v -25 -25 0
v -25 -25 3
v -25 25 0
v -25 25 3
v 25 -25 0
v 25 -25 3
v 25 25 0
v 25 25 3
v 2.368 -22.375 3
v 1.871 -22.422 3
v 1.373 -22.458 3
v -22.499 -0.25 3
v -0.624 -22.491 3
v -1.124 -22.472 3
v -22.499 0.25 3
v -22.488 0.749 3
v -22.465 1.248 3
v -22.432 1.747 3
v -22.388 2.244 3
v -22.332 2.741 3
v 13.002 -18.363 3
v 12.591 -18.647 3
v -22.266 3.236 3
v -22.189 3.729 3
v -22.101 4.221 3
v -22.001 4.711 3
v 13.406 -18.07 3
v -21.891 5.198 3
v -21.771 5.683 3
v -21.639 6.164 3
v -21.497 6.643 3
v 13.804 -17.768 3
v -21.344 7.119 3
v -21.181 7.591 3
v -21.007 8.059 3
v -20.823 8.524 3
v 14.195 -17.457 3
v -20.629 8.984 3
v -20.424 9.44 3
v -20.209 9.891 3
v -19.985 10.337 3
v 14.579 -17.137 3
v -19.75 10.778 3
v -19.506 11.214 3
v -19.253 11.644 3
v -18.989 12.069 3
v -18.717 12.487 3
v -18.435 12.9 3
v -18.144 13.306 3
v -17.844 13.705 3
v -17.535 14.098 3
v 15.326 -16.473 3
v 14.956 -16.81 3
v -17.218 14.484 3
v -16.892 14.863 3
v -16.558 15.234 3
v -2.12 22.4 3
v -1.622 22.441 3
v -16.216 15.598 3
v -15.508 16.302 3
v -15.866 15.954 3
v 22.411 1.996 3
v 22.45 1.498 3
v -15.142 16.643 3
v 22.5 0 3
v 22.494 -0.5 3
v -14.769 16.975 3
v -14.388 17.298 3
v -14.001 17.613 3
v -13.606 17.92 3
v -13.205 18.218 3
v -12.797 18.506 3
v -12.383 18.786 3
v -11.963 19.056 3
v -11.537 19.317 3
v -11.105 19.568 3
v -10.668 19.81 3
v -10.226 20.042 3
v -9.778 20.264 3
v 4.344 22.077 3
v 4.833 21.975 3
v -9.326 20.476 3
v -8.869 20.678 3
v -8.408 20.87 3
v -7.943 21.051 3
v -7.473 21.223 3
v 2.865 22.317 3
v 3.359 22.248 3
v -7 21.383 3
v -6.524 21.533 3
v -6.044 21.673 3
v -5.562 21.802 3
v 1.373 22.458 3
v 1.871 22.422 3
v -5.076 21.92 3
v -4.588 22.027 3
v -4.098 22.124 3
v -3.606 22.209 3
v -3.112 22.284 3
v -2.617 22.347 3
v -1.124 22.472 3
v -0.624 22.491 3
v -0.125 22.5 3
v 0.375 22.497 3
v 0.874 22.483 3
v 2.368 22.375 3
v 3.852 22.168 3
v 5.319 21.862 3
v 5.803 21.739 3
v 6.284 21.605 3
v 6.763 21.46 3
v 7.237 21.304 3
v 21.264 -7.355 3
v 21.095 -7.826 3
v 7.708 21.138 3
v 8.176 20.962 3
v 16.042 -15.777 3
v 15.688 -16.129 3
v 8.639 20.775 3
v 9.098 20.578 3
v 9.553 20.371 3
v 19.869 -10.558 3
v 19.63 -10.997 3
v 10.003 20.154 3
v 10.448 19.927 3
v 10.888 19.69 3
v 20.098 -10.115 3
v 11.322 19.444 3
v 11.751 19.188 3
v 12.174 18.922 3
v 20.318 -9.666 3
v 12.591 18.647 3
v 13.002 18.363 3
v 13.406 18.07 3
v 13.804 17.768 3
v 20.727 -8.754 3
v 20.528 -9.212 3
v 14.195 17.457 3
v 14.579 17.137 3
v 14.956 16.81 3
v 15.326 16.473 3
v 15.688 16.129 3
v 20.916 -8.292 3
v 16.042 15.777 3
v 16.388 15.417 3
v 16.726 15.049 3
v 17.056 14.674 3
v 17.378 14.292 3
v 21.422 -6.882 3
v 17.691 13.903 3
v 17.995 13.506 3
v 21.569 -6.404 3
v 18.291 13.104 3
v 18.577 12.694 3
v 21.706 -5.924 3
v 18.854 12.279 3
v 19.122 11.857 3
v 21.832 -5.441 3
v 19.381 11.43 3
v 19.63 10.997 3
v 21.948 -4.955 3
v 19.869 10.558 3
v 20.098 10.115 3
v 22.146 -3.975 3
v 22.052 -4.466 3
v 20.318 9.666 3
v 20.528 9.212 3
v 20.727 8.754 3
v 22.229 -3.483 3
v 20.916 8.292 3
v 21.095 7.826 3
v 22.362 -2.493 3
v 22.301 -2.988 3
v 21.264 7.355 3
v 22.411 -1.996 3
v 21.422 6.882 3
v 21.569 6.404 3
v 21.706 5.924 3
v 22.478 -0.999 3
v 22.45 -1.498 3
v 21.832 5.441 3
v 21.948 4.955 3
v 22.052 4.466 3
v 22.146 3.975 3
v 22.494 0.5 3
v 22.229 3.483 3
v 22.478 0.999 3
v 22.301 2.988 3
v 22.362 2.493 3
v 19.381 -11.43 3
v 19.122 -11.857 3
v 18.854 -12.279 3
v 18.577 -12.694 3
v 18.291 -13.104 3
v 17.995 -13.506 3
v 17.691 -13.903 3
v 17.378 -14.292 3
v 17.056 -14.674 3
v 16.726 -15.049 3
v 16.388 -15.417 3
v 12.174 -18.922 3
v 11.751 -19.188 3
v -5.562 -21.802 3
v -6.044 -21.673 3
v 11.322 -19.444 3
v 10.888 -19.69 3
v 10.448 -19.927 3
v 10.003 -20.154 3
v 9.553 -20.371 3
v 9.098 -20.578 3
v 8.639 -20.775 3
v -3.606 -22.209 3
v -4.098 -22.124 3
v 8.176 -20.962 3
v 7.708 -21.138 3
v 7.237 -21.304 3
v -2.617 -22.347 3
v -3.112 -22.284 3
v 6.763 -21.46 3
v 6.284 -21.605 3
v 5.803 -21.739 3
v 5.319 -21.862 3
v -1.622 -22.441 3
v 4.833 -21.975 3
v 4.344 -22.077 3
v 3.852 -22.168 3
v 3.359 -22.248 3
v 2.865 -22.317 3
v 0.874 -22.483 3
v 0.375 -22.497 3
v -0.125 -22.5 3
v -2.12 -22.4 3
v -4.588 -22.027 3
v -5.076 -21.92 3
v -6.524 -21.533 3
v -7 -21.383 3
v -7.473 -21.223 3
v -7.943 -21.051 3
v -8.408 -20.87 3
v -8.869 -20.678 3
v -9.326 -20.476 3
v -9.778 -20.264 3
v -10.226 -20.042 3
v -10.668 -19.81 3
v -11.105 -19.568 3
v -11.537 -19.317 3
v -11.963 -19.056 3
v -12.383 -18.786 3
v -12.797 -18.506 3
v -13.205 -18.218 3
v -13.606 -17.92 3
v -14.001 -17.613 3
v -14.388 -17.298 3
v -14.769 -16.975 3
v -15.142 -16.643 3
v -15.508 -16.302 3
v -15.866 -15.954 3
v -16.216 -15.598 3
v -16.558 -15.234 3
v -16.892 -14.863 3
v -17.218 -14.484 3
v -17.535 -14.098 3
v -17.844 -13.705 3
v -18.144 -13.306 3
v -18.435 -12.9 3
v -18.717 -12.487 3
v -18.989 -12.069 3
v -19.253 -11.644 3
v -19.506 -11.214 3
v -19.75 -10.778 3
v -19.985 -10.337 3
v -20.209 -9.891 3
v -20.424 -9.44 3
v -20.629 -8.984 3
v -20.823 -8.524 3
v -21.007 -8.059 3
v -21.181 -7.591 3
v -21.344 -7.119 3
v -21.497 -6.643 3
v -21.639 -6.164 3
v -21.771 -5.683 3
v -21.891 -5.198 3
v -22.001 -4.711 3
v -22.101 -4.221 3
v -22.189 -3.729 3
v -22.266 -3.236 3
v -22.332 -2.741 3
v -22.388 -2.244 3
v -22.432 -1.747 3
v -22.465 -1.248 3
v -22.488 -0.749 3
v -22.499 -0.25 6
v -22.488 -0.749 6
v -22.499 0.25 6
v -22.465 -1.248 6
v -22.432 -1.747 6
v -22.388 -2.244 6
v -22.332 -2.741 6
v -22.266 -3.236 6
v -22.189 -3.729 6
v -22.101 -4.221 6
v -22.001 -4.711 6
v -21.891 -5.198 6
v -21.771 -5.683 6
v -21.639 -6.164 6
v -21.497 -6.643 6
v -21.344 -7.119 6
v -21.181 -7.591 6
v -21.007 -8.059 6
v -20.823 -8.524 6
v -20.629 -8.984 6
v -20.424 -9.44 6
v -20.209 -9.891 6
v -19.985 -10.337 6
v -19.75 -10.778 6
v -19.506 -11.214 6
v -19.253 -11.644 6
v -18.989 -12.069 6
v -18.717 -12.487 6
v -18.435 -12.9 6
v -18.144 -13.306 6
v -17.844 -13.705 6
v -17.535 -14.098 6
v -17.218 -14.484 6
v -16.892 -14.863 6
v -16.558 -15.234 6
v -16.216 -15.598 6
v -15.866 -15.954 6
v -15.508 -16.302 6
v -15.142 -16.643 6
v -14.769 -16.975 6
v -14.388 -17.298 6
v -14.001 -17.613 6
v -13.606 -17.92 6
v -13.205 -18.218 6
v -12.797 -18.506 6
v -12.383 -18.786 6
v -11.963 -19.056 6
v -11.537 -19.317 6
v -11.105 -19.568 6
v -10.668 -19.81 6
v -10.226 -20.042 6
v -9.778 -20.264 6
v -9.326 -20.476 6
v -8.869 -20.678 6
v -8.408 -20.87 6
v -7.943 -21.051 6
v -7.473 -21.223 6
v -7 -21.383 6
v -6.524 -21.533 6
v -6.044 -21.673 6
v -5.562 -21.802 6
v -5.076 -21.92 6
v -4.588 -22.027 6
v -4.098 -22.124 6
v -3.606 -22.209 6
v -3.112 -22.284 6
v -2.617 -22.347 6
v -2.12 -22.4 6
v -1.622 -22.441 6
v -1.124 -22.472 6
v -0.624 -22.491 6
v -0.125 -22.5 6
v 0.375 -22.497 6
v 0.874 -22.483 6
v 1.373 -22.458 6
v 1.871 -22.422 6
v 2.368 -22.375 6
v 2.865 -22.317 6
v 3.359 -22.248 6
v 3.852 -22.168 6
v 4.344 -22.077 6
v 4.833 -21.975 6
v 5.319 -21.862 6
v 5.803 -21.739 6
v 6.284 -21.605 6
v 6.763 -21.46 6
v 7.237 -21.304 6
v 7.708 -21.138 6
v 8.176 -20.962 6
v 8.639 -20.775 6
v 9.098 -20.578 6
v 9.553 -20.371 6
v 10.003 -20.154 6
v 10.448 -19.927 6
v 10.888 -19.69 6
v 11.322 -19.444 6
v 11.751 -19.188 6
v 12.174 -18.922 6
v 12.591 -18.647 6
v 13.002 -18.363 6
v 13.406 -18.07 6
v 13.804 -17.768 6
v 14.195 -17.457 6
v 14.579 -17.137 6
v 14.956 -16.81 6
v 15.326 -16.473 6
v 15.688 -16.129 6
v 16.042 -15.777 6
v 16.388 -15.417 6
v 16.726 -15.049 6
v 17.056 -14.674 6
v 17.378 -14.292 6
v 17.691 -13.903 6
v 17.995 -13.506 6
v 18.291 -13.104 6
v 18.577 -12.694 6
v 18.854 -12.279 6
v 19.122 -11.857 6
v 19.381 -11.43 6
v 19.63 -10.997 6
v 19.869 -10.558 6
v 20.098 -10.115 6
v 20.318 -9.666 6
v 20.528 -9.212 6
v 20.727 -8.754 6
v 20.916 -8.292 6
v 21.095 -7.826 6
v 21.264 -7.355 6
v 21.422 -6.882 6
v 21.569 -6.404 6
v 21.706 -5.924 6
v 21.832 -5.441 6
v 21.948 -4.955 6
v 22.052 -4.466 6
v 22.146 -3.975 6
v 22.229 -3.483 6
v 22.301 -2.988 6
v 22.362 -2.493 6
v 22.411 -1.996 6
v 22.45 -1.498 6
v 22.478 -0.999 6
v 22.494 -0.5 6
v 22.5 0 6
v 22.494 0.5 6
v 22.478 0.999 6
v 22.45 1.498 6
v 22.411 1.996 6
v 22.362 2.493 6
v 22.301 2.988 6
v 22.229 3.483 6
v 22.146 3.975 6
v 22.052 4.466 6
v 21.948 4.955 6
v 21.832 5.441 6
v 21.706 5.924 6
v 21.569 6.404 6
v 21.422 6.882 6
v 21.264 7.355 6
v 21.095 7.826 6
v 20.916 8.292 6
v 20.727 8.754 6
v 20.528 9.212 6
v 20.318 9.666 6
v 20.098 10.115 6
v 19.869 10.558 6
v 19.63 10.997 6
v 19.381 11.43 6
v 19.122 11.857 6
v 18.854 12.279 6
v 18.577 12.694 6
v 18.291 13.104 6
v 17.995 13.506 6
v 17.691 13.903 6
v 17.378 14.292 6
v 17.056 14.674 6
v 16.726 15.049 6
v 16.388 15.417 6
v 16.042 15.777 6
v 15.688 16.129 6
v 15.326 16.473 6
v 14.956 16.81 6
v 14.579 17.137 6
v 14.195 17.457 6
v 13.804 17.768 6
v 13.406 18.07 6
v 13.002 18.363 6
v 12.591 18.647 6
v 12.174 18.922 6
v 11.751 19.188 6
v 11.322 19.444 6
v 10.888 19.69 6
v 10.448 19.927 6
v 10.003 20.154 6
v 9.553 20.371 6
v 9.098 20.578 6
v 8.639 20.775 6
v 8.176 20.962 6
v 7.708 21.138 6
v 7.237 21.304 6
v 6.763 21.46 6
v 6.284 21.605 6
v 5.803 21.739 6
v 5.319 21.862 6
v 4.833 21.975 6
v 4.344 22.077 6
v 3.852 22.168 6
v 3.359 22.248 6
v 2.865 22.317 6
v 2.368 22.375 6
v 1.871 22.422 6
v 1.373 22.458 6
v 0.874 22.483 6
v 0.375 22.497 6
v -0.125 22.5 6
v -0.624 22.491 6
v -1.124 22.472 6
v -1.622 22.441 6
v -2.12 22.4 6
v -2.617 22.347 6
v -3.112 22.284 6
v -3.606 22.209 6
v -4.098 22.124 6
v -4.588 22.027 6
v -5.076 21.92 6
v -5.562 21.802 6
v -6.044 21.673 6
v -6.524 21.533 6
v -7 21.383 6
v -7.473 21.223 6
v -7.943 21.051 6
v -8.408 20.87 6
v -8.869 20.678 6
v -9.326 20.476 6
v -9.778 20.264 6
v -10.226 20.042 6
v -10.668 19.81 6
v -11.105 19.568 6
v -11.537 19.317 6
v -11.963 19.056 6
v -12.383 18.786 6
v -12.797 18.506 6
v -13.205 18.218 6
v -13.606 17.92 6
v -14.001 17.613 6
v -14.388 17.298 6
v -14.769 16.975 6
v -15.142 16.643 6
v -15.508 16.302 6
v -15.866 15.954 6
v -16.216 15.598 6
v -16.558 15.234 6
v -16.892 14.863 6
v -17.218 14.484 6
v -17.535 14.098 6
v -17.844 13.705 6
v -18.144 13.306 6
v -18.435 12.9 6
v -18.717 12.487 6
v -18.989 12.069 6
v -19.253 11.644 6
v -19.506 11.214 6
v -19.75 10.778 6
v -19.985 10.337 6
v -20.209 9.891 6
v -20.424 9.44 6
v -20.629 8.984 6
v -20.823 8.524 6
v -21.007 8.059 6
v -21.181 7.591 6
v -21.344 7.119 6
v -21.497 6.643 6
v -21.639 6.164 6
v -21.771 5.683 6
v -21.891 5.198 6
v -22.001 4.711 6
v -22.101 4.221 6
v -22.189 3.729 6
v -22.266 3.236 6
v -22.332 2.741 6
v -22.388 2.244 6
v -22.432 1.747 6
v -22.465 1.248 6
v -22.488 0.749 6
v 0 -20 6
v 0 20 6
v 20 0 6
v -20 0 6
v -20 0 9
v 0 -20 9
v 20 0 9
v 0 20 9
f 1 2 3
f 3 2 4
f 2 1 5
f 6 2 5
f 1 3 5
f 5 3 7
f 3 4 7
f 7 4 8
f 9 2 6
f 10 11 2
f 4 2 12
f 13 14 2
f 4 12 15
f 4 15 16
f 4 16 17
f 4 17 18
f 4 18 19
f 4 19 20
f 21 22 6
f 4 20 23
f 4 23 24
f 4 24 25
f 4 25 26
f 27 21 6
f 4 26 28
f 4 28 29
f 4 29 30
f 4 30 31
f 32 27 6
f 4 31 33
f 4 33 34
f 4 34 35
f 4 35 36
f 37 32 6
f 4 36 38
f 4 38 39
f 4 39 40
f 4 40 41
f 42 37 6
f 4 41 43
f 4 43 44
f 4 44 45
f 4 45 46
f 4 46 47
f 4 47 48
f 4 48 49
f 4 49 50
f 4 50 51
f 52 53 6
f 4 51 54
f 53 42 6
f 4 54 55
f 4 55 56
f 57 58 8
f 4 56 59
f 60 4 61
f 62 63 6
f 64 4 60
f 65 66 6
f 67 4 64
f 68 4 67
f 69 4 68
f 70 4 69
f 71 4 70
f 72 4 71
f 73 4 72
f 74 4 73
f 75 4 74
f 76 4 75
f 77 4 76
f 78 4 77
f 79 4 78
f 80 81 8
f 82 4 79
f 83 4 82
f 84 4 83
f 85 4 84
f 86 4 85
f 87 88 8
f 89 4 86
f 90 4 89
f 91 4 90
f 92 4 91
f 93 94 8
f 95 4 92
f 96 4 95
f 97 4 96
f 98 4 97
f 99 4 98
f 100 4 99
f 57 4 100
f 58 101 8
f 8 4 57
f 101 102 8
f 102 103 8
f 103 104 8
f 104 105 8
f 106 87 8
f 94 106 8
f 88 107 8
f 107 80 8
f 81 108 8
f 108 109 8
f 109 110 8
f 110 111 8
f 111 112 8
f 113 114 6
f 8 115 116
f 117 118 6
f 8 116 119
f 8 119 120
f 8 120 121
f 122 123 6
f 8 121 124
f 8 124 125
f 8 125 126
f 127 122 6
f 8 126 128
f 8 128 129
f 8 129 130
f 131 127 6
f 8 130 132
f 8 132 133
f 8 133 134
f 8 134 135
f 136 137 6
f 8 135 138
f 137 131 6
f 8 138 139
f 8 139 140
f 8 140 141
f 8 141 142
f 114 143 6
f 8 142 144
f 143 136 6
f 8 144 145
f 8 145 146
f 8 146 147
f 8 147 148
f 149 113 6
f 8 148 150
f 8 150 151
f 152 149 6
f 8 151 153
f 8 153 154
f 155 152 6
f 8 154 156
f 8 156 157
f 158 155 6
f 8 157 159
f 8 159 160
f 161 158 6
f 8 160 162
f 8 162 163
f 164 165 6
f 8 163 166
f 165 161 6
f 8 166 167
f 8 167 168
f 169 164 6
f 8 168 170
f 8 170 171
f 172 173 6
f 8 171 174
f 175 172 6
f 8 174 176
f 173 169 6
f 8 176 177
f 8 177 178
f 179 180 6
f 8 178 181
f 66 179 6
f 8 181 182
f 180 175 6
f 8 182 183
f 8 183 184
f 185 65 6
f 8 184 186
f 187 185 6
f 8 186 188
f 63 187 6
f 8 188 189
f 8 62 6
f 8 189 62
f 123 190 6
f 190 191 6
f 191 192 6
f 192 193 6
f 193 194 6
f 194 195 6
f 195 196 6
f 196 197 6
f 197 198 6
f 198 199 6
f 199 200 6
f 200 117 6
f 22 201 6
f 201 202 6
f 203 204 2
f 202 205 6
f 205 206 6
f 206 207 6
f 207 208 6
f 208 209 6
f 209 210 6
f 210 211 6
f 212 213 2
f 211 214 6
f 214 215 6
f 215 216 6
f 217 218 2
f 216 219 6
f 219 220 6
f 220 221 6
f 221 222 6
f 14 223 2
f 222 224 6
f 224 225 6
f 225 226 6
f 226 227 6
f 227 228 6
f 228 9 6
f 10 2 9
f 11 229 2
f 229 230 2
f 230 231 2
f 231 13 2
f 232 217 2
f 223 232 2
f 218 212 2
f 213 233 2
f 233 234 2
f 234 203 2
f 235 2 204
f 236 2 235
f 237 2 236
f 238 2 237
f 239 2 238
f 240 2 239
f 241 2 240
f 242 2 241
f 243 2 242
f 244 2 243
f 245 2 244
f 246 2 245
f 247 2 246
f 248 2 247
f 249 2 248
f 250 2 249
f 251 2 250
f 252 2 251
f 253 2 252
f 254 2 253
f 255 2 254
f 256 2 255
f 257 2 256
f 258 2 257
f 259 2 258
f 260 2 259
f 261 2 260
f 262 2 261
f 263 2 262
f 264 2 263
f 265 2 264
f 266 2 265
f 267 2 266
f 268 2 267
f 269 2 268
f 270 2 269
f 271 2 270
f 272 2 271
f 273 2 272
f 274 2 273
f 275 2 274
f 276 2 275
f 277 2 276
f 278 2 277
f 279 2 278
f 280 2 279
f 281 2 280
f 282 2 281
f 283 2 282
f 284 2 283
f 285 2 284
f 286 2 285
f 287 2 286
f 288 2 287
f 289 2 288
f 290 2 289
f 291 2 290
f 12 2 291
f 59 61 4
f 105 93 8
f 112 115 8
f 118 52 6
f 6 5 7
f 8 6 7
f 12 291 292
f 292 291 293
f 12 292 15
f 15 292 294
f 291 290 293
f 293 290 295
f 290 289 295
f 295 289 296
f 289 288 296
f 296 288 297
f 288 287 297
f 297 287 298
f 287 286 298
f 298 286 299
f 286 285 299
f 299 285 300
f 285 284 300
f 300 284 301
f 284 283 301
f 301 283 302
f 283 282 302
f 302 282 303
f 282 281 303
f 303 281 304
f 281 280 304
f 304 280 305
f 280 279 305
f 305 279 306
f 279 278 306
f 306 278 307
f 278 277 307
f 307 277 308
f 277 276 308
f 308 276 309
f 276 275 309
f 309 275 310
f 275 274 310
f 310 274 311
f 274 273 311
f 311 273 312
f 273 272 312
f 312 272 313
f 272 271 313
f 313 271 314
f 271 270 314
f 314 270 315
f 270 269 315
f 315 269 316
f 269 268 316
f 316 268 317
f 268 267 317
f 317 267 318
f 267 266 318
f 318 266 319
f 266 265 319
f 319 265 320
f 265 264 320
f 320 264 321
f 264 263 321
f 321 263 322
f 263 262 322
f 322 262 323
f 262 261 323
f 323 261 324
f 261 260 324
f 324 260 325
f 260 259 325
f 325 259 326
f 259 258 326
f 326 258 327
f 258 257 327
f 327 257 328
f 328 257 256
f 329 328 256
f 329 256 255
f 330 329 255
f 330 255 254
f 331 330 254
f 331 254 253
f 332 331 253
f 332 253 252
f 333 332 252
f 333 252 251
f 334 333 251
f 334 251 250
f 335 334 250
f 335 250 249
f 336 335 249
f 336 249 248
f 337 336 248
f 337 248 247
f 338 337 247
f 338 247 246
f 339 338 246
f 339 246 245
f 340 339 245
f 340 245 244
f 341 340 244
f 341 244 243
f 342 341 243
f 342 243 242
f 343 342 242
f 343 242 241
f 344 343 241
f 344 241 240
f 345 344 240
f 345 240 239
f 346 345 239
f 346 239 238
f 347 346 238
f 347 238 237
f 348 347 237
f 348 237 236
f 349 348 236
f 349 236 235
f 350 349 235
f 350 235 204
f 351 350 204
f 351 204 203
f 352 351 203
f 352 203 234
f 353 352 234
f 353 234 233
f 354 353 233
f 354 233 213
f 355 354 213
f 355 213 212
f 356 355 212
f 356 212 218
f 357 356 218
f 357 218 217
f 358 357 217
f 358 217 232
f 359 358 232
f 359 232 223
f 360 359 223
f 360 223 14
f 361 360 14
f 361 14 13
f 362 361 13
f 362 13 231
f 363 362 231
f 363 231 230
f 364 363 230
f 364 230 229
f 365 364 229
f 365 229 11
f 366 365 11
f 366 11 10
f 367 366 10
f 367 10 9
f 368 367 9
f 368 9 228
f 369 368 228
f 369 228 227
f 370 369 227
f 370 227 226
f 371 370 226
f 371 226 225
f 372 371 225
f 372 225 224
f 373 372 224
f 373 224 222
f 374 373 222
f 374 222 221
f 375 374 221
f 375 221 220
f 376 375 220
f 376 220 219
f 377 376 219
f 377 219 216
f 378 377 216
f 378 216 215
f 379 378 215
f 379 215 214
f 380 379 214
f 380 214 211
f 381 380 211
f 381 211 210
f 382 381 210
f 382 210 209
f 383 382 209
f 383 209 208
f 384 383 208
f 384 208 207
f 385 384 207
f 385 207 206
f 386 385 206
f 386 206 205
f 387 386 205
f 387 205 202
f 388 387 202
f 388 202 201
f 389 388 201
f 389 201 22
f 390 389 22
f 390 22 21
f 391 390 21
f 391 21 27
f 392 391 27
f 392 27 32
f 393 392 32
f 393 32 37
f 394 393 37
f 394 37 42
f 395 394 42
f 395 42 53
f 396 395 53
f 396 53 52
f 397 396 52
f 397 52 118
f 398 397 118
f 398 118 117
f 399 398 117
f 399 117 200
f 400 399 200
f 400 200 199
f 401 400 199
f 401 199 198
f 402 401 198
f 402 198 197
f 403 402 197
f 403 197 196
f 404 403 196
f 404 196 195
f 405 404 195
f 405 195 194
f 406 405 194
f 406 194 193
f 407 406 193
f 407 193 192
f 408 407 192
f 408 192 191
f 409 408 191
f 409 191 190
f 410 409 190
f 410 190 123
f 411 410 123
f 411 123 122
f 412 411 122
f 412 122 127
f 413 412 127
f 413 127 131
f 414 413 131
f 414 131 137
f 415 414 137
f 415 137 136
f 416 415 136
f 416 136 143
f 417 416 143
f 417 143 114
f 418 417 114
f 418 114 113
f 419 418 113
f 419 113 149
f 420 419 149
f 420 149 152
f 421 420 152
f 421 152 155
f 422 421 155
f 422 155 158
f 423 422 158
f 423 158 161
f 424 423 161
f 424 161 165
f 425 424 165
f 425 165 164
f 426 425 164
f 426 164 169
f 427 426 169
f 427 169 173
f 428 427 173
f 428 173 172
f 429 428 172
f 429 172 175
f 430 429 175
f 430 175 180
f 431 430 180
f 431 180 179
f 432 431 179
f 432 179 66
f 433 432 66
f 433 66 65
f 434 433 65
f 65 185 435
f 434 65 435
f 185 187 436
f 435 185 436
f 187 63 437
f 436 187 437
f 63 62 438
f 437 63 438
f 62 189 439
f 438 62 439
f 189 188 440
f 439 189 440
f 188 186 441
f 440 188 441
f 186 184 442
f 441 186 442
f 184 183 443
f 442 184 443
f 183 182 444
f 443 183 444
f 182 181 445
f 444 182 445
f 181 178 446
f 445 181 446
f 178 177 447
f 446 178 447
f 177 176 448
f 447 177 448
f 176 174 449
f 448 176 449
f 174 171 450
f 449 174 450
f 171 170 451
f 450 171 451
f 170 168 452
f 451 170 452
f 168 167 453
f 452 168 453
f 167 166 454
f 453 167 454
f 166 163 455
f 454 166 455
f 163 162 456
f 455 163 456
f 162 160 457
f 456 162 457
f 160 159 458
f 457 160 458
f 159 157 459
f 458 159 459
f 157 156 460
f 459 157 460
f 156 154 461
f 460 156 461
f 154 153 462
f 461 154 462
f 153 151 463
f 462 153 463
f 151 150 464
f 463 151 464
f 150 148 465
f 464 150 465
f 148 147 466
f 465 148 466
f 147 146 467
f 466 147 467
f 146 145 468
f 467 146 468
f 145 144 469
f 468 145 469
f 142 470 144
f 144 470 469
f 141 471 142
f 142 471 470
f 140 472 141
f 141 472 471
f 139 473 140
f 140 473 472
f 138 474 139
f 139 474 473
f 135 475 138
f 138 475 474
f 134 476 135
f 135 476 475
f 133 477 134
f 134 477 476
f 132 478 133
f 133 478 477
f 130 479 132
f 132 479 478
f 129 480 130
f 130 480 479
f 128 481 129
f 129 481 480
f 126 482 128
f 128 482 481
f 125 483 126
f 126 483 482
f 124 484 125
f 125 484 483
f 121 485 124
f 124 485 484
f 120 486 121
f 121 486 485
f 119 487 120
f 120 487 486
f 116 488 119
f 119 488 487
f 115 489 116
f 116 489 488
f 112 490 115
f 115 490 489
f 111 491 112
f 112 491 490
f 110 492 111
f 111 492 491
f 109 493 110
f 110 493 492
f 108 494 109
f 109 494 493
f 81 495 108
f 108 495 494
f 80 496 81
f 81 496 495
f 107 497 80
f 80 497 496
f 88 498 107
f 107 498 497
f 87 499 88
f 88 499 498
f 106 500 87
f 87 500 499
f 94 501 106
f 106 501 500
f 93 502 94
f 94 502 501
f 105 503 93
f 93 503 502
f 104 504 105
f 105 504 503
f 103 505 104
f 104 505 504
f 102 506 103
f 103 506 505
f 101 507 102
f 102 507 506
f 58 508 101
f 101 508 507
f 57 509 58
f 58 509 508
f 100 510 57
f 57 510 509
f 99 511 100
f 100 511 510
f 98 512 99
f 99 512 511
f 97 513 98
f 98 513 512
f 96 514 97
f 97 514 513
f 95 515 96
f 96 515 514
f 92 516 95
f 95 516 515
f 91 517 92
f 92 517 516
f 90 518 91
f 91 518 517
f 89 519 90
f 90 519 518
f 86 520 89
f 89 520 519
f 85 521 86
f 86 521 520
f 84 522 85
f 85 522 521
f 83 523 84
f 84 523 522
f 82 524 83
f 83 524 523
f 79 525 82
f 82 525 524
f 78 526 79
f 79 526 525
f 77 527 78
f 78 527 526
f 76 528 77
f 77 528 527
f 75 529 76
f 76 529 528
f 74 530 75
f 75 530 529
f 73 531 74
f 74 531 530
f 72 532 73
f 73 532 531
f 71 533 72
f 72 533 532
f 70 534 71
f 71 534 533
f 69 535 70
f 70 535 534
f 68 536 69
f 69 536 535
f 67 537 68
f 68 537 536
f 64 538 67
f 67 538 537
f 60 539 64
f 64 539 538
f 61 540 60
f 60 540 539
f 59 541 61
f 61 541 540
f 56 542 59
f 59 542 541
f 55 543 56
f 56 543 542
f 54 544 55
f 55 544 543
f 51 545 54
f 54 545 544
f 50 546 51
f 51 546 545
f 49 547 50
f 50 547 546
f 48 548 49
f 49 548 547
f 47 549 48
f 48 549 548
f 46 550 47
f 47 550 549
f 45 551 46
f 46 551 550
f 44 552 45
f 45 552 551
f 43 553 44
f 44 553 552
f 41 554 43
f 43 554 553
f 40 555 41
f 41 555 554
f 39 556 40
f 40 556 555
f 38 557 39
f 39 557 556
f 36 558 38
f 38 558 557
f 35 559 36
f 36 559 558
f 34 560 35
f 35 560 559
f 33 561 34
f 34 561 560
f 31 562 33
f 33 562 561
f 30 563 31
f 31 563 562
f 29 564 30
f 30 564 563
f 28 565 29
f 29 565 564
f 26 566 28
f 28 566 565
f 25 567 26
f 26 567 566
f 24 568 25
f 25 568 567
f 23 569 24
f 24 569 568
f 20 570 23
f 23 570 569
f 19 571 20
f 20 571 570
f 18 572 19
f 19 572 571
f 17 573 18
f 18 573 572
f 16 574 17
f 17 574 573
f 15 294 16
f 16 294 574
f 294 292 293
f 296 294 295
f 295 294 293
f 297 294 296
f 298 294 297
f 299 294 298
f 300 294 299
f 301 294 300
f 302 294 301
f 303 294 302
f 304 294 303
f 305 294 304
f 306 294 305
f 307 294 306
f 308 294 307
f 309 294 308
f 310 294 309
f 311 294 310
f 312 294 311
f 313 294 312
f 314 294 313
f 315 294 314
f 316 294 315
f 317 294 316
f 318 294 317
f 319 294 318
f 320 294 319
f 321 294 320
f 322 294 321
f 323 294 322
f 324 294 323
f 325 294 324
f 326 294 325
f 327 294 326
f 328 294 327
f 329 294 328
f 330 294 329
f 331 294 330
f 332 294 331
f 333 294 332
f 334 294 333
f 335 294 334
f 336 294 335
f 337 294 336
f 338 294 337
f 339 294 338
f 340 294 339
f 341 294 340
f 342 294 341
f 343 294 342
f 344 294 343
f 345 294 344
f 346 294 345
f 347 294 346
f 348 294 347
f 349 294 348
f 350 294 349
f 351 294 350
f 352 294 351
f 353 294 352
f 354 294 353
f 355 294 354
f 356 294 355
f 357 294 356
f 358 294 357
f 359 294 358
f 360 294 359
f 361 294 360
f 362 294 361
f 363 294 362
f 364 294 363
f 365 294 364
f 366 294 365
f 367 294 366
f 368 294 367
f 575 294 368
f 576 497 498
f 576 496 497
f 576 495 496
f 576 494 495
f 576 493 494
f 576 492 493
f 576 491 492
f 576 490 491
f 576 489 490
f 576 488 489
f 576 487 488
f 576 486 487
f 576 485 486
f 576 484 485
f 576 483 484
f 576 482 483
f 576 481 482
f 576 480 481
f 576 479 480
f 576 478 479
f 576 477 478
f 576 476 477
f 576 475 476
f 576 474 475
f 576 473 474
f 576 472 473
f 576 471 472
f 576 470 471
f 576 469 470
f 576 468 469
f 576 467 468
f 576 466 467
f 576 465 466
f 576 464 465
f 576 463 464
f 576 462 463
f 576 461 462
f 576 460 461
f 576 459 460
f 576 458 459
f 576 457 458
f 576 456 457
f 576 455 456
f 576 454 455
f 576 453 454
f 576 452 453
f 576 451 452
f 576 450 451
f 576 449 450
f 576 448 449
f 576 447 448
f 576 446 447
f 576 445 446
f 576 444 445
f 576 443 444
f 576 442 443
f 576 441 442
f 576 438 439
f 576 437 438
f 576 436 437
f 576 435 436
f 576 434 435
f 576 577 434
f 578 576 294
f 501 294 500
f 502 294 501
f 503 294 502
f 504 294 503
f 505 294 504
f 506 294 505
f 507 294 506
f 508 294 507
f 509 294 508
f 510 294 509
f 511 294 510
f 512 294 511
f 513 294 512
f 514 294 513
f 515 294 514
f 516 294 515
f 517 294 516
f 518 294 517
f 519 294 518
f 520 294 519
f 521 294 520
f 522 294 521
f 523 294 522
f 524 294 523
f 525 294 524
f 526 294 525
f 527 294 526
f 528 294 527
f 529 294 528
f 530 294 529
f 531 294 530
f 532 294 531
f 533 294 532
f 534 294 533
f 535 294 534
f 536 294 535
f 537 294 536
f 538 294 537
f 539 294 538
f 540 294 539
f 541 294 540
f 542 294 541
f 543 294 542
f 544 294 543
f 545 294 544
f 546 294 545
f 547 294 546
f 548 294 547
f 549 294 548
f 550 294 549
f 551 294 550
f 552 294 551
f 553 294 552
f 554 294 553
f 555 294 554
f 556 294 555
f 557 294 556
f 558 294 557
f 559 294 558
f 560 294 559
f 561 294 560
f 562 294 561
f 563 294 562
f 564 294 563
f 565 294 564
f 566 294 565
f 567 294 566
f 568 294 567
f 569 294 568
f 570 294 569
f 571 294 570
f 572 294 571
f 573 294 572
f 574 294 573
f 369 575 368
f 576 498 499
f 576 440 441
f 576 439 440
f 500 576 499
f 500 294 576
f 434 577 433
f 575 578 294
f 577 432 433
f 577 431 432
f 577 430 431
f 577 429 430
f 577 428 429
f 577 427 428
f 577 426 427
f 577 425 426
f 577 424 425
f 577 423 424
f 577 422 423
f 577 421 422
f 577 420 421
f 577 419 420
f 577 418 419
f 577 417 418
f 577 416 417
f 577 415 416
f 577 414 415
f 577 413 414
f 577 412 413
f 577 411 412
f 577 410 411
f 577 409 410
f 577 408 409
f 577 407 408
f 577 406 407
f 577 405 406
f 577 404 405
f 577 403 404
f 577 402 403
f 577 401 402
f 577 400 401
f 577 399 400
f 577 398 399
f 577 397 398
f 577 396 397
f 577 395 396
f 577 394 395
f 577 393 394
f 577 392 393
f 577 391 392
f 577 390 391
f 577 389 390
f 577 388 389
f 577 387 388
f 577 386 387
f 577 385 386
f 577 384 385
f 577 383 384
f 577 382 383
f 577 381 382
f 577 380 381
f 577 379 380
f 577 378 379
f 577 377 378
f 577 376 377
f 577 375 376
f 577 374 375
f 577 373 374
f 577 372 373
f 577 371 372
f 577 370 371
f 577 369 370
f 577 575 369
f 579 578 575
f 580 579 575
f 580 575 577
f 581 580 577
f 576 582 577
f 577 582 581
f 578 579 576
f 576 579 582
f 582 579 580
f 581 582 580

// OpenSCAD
$fa = 0.01;

// segment length of circle circumference
$fs = 0.5;

r_square = 50;
r_circle = 45;
r_diamond = 40;
l_height = 3;

translate([0, 0, l_height*0.5]) {
	cube([r_square, r_square, l_height], center = true);
	#linear_extrude(height = l_height*1.5) {
		circle(r = r_circle/2);
	}
	cylinder(r = r_diamond/2, h = l_height*2.5, $fn = 4);
}
